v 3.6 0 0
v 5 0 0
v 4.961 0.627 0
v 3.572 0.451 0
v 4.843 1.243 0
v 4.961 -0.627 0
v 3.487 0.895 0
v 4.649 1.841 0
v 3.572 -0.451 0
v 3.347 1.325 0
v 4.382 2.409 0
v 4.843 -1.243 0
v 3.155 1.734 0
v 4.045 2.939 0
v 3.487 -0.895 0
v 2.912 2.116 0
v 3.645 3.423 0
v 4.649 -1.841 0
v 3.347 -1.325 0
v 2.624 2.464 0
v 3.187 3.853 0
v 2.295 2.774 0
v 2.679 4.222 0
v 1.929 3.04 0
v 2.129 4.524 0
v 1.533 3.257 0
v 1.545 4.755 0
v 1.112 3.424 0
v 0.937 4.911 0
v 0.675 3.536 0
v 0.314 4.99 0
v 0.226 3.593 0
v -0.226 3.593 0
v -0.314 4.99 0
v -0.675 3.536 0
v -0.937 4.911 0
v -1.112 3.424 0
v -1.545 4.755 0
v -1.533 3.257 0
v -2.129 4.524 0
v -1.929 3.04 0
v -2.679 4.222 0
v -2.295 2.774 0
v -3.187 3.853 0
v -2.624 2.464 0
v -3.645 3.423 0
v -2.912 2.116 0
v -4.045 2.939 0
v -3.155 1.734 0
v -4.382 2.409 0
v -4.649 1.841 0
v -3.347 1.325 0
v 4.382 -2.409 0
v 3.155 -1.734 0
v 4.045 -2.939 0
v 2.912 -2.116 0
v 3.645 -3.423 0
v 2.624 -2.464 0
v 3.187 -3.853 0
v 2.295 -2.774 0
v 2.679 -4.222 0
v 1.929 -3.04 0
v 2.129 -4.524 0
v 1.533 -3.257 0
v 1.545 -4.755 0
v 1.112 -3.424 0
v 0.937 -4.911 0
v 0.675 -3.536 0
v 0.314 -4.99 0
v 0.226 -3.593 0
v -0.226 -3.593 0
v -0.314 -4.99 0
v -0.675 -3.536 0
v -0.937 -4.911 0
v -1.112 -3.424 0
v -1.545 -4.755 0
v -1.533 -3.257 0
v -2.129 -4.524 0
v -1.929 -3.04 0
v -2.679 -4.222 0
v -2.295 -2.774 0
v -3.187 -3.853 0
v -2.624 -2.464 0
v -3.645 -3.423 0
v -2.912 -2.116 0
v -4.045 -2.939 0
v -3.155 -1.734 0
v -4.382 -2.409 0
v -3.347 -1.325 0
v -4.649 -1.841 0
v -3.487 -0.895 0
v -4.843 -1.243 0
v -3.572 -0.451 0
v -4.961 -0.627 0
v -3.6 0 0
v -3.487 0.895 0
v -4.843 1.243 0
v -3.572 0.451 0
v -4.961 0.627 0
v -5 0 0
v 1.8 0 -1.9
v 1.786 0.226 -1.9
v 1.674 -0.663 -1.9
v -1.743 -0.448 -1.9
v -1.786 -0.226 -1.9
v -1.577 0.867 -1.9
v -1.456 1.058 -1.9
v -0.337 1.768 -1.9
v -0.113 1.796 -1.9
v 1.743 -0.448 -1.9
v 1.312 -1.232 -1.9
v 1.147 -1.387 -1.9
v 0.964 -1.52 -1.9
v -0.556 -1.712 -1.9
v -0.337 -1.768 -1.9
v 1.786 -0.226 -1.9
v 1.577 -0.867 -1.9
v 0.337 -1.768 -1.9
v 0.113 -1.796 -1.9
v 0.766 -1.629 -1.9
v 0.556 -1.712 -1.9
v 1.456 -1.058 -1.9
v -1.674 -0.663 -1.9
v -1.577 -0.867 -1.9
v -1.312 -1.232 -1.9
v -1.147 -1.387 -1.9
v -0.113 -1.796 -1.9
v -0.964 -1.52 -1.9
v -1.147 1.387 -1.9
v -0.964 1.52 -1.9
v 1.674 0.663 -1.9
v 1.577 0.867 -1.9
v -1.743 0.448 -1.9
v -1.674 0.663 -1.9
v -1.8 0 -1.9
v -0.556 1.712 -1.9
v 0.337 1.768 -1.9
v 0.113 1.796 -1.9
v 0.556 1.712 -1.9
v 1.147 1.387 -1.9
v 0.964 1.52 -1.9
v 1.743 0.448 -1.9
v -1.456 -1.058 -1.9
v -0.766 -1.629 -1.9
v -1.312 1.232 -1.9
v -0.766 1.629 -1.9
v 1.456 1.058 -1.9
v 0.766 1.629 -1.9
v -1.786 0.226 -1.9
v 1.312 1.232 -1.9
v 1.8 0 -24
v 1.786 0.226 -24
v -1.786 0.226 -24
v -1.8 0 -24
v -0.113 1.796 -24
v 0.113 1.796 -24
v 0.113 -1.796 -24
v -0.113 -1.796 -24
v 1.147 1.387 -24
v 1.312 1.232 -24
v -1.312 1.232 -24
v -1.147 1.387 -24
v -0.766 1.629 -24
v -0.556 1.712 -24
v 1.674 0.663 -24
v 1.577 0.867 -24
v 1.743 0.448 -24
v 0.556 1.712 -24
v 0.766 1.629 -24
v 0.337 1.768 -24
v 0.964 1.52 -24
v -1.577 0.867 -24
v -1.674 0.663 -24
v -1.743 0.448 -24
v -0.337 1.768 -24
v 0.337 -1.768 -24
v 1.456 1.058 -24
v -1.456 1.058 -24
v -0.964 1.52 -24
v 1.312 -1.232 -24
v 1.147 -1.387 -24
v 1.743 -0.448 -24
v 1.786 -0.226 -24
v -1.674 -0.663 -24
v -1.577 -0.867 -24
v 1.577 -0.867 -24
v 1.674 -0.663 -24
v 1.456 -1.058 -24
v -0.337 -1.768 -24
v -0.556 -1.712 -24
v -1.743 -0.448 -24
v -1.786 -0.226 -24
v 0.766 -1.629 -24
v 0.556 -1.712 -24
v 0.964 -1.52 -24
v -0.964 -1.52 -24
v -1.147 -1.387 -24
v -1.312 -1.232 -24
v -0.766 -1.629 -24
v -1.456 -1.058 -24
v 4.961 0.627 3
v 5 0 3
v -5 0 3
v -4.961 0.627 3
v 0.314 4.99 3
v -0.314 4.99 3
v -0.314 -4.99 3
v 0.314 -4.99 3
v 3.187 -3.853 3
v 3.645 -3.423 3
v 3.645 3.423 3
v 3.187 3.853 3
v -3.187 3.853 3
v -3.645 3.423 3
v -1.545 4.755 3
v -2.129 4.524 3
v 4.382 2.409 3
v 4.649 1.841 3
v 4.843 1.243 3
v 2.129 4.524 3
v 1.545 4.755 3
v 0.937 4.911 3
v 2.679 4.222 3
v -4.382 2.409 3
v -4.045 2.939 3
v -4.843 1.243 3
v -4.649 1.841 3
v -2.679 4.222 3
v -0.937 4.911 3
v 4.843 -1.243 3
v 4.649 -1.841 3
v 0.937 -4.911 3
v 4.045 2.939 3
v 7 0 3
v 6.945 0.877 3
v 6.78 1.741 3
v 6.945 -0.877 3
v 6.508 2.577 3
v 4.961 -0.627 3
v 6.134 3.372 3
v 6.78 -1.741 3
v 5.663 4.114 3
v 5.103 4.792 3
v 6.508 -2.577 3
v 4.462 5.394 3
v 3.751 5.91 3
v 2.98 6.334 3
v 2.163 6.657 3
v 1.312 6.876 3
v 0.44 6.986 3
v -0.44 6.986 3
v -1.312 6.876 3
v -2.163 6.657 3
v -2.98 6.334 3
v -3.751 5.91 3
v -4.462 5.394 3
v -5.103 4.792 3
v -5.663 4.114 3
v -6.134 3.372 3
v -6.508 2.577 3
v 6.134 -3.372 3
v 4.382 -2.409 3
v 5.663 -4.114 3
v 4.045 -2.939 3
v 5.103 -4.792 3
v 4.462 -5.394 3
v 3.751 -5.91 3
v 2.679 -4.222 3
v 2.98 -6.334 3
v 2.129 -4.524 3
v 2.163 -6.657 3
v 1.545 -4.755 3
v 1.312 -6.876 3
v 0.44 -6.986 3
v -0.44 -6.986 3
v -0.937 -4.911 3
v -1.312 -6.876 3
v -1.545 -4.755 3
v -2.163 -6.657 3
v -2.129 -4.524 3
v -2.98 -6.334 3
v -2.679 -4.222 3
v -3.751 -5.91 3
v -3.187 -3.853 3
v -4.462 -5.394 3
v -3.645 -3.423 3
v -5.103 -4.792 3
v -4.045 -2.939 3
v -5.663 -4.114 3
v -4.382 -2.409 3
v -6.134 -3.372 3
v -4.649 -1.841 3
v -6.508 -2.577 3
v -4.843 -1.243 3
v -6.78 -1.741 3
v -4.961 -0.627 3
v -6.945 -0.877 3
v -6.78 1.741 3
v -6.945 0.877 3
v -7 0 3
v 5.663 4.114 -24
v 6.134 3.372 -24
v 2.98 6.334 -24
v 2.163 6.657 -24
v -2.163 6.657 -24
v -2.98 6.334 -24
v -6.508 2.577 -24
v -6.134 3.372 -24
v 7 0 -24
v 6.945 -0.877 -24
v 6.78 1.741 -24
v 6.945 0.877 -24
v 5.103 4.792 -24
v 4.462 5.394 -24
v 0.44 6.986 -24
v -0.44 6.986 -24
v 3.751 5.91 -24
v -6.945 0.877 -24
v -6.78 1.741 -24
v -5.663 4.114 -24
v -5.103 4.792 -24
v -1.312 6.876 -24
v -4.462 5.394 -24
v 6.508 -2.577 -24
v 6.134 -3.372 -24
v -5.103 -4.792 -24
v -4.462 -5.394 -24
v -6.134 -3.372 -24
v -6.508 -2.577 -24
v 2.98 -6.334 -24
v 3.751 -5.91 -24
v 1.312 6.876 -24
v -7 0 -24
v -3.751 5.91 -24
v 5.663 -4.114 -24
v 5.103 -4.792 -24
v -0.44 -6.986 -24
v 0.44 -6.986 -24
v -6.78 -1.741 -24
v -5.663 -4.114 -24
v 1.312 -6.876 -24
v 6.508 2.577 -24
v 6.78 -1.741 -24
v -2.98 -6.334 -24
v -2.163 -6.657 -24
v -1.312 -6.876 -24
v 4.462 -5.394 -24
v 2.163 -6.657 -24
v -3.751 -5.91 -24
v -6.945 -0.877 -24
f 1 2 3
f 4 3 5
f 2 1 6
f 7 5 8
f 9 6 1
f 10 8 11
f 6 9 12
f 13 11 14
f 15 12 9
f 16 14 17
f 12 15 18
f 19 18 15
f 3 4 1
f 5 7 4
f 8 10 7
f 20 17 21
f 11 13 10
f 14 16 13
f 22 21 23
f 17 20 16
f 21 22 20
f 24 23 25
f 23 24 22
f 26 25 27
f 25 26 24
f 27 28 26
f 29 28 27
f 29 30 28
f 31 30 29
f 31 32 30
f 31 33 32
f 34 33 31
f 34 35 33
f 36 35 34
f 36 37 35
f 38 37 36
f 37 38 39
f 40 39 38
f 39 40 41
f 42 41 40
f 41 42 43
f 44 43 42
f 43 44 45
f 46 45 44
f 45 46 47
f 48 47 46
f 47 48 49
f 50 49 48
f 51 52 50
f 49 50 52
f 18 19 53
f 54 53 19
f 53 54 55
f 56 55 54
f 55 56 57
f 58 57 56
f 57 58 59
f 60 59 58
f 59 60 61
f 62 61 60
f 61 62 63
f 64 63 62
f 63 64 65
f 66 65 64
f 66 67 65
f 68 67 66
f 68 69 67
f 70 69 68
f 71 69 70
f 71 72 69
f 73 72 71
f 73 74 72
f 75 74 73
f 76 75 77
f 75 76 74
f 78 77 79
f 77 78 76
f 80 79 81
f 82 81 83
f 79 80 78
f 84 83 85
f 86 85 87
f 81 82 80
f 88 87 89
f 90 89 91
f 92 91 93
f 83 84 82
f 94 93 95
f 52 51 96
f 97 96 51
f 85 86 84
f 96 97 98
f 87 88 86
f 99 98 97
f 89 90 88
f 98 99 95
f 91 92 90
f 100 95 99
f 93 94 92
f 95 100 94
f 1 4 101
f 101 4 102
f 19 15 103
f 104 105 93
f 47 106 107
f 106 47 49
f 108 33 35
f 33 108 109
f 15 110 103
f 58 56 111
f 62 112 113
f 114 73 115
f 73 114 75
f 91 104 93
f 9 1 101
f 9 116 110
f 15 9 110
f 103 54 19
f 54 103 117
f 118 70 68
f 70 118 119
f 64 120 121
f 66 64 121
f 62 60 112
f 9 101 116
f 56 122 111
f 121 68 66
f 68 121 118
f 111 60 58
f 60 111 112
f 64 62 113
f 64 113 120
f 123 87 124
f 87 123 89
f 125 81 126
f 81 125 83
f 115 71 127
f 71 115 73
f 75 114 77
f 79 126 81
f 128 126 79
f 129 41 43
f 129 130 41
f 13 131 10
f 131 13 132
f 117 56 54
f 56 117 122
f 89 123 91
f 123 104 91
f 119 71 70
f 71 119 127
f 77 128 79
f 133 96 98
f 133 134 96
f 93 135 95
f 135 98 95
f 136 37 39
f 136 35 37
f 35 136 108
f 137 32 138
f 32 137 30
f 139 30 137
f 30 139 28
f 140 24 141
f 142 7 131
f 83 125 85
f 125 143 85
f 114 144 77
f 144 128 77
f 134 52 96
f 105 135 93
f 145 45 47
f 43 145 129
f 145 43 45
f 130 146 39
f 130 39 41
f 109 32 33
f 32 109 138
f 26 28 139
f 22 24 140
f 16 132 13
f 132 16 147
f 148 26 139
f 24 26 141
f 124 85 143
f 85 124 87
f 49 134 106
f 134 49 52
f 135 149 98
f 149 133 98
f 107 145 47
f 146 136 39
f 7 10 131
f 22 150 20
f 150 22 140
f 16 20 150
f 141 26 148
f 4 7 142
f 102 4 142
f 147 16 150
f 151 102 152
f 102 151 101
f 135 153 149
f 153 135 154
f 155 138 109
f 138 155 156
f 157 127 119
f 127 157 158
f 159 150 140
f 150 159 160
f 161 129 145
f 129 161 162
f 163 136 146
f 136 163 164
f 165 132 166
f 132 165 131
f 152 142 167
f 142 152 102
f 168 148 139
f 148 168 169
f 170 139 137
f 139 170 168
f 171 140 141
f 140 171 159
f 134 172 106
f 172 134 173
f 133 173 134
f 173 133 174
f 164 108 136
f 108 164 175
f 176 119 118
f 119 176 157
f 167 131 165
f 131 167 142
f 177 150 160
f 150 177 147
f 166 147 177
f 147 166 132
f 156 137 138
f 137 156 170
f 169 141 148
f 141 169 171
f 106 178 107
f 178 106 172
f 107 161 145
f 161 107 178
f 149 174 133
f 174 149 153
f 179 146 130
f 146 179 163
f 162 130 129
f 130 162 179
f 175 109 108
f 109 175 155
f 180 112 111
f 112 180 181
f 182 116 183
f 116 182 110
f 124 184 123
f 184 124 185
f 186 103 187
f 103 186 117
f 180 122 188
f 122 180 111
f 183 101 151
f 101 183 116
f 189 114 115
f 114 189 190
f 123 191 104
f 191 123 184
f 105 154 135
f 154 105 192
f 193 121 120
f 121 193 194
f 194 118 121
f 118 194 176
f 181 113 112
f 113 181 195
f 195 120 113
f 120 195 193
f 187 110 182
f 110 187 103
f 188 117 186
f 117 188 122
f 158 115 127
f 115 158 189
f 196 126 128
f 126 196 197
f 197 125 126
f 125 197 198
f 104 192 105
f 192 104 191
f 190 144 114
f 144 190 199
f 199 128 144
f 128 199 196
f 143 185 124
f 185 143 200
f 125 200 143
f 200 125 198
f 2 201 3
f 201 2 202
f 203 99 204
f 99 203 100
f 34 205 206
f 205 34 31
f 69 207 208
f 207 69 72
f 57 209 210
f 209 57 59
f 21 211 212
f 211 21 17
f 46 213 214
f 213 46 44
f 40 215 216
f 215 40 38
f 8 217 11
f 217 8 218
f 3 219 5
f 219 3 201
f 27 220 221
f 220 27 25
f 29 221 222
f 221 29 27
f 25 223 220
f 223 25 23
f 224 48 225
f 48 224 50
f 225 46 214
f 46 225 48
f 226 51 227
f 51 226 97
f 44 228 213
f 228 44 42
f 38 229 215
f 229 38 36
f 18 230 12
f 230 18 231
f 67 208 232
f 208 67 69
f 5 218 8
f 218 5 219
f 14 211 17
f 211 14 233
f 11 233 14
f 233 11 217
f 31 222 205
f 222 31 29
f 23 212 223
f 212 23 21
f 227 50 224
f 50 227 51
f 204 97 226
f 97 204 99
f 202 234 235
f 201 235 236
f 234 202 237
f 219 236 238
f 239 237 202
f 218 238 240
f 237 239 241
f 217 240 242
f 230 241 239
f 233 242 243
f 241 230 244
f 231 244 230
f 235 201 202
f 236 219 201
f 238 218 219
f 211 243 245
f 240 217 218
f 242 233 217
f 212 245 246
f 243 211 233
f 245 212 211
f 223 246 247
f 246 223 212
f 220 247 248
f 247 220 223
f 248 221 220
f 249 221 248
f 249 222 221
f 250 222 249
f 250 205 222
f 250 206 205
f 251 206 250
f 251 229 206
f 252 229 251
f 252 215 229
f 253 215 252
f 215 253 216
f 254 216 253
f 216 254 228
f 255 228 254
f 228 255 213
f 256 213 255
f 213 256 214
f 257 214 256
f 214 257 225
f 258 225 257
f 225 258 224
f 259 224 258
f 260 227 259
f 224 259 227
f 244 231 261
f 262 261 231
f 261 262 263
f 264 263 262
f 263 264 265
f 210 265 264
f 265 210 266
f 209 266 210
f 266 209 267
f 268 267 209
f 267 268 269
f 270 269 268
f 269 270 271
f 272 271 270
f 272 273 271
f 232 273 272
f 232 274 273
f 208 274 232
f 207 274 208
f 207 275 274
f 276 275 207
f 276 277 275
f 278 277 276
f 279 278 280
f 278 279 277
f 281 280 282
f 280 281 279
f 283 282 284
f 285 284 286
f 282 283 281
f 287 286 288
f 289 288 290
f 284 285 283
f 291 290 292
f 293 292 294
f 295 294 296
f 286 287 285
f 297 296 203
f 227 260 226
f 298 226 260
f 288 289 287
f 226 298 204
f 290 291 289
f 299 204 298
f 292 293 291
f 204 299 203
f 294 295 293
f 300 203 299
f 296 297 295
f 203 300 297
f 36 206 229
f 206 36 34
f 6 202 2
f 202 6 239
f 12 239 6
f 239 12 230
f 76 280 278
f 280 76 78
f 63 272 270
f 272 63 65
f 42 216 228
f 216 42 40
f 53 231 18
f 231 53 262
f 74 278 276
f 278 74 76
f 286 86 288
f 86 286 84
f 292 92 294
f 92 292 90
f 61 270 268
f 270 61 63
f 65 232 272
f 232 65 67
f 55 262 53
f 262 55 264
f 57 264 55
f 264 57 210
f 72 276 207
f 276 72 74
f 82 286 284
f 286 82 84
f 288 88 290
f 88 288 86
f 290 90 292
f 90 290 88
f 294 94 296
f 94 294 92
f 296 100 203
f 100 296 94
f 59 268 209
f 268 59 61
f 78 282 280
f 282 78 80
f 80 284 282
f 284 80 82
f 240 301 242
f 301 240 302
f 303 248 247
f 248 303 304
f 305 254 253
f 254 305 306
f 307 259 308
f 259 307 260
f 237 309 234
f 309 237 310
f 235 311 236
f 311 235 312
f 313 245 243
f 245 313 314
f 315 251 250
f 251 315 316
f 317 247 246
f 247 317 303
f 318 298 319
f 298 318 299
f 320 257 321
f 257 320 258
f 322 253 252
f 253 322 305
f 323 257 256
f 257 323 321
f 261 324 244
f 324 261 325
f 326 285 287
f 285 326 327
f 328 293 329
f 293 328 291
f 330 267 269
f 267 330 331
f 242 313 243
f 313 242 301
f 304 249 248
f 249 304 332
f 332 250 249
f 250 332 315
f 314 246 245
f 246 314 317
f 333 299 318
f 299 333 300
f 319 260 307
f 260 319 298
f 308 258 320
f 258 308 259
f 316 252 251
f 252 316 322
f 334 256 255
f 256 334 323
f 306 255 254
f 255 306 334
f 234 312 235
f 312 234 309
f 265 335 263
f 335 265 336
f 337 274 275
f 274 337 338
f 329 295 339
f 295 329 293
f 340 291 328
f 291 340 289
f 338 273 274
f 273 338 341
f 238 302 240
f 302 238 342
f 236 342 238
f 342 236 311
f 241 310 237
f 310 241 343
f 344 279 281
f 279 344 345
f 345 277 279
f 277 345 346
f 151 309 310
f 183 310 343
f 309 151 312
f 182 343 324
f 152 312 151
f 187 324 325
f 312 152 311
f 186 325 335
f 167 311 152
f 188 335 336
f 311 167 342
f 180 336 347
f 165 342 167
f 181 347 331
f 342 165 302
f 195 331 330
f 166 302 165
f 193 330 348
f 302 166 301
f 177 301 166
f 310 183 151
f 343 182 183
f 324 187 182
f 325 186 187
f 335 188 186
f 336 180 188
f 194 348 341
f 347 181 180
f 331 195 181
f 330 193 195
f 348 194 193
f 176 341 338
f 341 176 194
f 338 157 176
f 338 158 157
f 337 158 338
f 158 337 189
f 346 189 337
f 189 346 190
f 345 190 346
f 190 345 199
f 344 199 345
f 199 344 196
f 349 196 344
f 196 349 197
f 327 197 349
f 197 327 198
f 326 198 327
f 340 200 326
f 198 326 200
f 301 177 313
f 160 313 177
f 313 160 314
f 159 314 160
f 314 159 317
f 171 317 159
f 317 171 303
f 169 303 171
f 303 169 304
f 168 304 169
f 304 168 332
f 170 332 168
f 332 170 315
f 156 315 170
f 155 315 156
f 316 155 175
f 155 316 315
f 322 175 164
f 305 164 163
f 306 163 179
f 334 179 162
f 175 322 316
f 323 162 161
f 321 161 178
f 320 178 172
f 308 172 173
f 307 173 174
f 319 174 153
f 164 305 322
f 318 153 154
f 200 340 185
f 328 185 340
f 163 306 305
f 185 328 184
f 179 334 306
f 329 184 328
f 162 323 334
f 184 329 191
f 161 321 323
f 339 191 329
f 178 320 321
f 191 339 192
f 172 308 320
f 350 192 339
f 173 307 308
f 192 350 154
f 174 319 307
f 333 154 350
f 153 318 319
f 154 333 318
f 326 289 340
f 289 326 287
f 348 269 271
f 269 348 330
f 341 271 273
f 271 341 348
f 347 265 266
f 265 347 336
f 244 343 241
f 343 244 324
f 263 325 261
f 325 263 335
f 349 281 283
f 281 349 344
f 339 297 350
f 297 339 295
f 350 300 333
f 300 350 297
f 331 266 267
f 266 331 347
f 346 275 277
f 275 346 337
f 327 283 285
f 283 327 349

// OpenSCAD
$fn = 50;

difference() {
	union() {
		translate(v = [0, 0, -24.0]) {
			cylinder(h = 27, r = 7.0);
		}
	}
	union() {
		translate(v = [0, 0, 0]) {
			rotate(a = [0, 0, 0]) {
				difference() {
					union() {
						translate(v = [0, 0, -27.0]) {
							cylinder(h = 27, r = 1.5);
						}
						translate(v = [0, 0, -1.9]) {
							cylinder(h = 1.9, r1 = 1.8, r2 = 3.6);
						}
						translate(v = [0, 0, -27.0]) {
							cylinder(h = 27, r = 1.8);
						}
						translate(v = [0, 0, -27.0]) {
							cylinder(h = 27, r = 1.5);
						}
					}
					union();
				}
			}
		}
		#cylinder(h = 3, r = 5.0);
	}
}
